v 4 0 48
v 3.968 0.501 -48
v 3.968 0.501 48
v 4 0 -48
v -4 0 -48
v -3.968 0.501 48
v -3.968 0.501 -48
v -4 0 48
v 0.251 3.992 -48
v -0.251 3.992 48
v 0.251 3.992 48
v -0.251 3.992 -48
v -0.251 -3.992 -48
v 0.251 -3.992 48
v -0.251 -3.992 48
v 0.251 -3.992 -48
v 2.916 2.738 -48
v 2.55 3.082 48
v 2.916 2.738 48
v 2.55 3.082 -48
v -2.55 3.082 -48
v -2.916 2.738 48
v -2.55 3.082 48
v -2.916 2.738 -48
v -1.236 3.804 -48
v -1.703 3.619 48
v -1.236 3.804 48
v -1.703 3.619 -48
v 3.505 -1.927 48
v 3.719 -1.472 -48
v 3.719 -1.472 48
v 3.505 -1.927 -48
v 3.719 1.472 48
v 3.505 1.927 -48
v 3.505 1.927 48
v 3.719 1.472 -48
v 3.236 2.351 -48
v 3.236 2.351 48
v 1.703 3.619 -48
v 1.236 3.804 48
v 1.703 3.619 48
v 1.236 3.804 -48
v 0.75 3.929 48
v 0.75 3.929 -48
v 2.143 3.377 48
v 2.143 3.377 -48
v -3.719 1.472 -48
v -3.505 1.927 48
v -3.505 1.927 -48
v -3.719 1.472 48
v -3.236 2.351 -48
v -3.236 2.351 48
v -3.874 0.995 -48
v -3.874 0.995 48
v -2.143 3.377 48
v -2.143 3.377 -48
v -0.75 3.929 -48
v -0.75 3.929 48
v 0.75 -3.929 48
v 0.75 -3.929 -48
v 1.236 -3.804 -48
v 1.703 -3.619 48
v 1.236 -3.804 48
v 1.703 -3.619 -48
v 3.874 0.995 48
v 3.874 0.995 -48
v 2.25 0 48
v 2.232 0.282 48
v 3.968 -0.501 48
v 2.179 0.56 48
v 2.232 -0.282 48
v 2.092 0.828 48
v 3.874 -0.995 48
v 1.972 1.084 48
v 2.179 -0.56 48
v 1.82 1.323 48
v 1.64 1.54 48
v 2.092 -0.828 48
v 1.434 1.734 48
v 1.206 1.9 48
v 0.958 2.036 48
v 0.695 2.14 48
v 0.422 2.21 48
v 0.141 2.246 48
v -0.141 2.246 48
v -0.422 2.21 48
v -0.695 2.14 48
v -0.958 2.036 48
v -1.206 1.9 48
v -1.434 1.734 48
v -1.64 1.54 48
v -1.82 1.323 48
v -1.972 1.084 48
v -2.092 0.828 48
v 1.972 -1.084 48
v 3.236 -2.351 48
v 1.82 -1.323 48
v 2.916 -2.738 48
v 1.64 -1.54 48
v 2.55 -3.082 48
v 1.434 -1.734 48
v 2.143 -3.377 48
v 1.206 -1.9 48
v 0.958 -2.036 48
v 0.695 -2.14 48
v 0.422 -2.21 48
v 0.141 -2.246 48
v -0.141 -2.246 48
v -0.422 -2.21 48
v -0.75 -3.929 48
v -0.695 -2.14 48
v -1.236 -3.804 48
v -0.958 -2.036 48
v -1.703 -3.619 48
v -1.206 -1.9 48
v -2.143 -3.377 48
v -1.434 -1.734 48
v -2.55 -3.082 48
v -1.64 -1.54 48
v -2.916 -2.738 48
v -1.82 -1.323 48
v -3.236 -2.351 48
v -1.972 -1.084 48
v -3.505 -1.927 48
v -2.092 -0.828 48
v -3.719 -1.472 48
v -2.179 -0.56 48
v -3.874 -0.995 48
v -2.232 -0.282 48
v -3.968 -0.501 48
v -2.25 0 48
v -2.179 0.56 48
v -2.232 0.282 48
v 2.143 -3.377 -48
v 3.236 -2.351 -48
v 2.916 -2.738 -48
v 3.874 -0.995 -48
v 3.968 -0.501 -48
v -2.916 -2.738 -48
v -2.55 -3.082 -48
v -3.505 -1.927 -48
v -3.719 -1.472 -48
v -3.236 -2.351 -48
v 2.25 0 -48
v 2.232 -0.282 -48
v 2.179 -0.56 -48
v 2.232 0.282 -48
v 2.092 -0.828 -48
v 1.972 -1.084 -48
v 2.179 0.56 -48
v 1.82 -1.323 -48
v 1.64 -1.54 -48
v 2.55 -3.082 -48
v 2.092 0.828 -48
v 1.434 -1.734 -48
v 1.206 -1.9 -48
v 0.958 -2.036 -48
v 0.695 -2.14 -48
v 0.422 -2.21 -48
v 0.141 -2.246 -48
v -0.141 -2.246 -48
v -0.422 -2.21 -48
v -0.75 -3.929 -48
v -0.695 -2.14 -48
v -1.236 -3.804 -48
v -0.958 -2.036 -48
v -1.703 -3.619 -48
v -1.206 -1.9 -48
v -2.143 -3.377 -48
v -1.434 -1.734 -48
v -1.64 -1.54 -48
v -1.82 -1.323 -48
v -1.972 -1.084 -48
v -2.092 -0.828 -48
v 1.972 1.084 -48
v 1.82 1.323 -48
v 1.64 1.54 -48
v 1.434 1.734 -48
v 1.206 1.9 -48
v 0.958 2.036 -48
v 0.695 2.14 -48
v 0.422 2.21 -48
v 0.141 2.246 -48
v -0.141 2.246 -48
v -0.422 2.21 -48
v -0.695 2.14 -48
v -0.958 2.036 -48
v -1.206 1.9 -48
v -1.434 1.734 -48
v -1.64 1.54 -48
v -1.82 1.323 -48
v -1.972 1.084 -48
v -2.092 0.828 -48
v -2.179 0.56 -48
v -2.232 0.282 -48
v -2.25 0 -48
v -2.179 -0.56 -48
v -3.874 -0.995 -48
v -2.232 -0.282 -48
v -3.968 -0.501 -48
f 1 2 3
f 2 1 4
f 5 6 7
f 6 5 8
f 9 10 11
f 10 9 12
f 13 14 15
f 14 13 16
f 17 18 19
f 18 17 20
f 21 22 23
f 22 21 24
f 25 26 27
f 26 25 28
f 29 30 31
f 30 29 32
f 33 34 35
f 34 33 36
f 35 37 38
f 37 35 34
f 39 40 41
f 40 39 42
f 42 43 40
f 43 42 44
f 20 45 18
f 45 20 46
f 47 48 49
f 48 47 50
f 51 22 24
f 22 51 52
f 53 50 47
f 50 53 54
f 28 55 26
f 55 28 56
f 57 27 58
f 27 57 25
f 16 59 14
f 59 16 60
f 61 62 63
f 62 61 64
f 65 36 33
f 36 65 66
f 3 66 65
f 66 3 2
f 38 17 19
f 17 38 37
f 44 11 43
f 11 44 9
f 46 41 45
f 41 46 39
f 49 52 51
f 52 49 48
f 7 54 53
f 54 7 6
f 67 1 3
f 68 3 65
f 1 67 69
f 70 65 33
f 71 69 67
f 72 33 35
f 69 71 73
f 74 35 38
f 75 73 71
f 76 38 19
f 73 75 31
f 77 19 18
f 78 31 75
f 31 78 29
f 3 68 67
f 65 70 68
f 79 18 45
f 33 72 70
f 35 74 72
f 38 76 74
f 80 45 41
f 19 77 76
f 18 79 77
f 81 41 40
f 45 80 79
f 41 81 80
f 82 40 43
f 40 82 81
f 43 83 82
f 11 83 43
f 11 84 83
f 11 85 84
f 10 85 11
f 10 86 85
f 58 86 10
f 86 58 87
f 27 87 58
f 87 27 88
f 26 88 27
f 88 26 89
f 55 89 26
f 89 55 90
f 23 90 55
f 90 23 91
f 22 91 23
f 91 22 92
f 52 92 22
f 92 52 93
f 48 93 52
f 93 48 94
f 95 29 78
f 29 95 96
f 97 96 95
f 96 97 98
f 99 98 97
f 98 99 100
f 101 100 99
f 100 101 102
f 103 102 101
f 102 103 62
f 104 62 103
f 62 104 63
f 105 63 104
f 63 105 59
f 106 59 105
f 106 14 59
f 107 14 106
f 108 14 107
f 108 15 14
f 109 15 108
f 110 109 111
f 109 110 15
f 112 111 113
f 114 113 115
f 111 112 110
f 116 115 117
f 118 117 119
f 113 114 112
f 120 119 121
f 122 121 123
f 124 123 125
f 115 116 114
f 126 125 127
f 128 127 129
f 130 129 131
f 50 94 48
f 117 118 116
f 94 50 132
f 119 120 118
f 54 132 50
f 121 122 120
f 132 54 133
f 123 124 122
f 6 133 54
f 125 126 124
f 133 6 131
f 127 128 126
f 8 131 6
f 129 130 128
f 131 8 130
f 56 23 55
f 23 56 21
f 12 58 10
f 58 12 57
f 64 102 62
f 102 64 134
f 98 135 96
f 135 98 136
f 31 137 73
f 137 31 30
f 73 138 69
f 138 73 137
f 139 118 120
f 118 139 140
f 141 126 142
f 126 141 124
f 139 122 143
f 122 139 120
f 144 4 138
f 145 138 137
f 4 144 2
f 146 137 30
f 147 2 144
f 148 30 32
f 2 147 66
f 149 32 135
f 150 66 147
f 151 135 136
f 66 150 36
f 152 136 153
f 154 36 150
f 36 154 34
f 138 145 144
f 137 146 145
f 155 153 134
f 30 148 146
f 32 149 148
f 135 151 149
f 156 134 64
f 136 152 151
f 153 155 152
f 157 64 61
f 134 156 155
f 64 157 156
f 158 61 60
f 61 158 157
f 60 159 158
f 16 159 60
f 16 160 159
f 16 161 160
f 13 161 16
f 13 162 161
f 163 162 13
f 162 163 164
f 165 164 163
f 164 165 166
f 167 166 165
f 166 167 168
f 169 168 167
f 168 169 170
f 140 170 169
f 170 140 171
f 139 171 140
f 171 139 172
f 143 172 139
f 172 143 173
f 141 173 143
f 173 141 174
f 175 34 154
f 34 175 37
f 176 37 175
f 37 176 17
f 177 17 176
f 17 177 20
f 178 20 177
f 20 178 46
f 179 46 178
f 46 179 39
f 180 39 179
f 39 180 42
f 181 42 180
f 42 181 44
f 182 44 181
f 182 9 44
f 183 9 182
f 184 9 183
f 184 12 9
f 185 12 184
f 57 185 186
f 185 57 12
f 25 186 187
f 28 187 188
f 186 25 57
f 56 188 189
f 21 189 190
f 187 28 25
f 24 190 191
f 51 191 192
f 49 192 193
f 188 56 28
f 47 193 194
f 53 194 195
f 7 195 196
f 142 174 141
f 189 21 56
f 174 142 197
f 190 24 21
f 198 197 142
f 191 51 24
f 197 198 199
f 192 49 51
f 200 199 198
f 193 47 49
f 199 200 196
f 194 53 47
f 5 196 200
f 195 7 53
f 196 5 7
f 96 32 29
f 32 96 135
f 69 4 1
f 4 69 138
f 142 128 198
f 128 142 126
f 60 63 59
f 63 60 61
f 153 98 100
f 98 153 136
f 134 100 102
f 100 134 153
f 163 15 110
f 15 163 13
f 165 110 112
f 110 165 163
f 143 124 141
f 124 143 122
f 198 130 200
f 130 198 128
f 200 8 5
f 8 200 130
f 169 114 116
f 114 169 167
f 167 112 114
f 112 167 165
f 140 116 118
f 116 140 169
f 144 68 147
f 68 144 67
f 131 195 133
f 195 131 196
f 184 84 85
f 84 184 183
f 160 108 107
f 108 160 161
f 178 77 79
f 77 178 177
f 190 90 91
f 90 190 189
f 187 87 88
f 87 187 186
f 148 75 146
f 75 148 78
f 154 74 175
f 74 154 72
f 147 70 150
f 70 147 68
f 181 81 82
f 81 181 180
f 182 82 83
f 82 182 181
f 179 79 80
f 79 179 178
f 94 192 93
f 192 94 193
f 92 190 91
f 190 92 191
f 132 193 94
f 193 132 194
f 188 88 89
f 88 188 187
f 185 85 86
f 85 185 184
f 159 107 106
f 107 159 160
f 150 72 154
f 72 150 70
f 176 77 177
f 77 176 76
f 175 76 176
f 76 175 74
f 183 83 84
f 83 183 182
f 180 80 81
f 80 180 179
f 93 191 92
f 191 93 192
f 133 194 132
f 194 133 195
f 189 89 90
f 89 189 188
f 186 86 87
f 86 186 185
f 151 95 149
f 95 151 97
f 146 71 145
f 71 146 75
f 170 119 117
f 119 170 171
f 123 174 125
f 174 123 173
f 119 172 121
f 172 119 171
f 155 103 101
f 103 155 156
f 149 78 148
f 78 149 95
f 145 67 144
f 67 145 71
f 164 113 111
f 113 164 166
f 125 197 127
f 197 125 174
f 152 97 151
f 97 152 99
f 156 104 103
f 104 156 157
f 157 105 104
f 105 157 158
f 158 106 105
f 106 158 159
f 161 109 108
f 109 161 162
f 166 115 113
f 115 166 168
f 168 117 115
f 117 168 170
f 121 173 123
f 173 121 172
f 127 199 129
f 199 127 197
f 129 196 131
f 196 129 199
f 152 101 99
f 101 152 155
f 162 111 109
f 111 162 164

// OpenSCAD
$fn = 50;


difference() {
	union() {
		translate(v = [0, 0, -48.0000000000]) {
			cylinder(h = 96, r = 4.0000000000);
		}
	}
	union() {
		translate(v = [0, 0, -100.0000000000]) {
			cylinder(h = 200, r = 2.2500000000);
		}
	}
}
